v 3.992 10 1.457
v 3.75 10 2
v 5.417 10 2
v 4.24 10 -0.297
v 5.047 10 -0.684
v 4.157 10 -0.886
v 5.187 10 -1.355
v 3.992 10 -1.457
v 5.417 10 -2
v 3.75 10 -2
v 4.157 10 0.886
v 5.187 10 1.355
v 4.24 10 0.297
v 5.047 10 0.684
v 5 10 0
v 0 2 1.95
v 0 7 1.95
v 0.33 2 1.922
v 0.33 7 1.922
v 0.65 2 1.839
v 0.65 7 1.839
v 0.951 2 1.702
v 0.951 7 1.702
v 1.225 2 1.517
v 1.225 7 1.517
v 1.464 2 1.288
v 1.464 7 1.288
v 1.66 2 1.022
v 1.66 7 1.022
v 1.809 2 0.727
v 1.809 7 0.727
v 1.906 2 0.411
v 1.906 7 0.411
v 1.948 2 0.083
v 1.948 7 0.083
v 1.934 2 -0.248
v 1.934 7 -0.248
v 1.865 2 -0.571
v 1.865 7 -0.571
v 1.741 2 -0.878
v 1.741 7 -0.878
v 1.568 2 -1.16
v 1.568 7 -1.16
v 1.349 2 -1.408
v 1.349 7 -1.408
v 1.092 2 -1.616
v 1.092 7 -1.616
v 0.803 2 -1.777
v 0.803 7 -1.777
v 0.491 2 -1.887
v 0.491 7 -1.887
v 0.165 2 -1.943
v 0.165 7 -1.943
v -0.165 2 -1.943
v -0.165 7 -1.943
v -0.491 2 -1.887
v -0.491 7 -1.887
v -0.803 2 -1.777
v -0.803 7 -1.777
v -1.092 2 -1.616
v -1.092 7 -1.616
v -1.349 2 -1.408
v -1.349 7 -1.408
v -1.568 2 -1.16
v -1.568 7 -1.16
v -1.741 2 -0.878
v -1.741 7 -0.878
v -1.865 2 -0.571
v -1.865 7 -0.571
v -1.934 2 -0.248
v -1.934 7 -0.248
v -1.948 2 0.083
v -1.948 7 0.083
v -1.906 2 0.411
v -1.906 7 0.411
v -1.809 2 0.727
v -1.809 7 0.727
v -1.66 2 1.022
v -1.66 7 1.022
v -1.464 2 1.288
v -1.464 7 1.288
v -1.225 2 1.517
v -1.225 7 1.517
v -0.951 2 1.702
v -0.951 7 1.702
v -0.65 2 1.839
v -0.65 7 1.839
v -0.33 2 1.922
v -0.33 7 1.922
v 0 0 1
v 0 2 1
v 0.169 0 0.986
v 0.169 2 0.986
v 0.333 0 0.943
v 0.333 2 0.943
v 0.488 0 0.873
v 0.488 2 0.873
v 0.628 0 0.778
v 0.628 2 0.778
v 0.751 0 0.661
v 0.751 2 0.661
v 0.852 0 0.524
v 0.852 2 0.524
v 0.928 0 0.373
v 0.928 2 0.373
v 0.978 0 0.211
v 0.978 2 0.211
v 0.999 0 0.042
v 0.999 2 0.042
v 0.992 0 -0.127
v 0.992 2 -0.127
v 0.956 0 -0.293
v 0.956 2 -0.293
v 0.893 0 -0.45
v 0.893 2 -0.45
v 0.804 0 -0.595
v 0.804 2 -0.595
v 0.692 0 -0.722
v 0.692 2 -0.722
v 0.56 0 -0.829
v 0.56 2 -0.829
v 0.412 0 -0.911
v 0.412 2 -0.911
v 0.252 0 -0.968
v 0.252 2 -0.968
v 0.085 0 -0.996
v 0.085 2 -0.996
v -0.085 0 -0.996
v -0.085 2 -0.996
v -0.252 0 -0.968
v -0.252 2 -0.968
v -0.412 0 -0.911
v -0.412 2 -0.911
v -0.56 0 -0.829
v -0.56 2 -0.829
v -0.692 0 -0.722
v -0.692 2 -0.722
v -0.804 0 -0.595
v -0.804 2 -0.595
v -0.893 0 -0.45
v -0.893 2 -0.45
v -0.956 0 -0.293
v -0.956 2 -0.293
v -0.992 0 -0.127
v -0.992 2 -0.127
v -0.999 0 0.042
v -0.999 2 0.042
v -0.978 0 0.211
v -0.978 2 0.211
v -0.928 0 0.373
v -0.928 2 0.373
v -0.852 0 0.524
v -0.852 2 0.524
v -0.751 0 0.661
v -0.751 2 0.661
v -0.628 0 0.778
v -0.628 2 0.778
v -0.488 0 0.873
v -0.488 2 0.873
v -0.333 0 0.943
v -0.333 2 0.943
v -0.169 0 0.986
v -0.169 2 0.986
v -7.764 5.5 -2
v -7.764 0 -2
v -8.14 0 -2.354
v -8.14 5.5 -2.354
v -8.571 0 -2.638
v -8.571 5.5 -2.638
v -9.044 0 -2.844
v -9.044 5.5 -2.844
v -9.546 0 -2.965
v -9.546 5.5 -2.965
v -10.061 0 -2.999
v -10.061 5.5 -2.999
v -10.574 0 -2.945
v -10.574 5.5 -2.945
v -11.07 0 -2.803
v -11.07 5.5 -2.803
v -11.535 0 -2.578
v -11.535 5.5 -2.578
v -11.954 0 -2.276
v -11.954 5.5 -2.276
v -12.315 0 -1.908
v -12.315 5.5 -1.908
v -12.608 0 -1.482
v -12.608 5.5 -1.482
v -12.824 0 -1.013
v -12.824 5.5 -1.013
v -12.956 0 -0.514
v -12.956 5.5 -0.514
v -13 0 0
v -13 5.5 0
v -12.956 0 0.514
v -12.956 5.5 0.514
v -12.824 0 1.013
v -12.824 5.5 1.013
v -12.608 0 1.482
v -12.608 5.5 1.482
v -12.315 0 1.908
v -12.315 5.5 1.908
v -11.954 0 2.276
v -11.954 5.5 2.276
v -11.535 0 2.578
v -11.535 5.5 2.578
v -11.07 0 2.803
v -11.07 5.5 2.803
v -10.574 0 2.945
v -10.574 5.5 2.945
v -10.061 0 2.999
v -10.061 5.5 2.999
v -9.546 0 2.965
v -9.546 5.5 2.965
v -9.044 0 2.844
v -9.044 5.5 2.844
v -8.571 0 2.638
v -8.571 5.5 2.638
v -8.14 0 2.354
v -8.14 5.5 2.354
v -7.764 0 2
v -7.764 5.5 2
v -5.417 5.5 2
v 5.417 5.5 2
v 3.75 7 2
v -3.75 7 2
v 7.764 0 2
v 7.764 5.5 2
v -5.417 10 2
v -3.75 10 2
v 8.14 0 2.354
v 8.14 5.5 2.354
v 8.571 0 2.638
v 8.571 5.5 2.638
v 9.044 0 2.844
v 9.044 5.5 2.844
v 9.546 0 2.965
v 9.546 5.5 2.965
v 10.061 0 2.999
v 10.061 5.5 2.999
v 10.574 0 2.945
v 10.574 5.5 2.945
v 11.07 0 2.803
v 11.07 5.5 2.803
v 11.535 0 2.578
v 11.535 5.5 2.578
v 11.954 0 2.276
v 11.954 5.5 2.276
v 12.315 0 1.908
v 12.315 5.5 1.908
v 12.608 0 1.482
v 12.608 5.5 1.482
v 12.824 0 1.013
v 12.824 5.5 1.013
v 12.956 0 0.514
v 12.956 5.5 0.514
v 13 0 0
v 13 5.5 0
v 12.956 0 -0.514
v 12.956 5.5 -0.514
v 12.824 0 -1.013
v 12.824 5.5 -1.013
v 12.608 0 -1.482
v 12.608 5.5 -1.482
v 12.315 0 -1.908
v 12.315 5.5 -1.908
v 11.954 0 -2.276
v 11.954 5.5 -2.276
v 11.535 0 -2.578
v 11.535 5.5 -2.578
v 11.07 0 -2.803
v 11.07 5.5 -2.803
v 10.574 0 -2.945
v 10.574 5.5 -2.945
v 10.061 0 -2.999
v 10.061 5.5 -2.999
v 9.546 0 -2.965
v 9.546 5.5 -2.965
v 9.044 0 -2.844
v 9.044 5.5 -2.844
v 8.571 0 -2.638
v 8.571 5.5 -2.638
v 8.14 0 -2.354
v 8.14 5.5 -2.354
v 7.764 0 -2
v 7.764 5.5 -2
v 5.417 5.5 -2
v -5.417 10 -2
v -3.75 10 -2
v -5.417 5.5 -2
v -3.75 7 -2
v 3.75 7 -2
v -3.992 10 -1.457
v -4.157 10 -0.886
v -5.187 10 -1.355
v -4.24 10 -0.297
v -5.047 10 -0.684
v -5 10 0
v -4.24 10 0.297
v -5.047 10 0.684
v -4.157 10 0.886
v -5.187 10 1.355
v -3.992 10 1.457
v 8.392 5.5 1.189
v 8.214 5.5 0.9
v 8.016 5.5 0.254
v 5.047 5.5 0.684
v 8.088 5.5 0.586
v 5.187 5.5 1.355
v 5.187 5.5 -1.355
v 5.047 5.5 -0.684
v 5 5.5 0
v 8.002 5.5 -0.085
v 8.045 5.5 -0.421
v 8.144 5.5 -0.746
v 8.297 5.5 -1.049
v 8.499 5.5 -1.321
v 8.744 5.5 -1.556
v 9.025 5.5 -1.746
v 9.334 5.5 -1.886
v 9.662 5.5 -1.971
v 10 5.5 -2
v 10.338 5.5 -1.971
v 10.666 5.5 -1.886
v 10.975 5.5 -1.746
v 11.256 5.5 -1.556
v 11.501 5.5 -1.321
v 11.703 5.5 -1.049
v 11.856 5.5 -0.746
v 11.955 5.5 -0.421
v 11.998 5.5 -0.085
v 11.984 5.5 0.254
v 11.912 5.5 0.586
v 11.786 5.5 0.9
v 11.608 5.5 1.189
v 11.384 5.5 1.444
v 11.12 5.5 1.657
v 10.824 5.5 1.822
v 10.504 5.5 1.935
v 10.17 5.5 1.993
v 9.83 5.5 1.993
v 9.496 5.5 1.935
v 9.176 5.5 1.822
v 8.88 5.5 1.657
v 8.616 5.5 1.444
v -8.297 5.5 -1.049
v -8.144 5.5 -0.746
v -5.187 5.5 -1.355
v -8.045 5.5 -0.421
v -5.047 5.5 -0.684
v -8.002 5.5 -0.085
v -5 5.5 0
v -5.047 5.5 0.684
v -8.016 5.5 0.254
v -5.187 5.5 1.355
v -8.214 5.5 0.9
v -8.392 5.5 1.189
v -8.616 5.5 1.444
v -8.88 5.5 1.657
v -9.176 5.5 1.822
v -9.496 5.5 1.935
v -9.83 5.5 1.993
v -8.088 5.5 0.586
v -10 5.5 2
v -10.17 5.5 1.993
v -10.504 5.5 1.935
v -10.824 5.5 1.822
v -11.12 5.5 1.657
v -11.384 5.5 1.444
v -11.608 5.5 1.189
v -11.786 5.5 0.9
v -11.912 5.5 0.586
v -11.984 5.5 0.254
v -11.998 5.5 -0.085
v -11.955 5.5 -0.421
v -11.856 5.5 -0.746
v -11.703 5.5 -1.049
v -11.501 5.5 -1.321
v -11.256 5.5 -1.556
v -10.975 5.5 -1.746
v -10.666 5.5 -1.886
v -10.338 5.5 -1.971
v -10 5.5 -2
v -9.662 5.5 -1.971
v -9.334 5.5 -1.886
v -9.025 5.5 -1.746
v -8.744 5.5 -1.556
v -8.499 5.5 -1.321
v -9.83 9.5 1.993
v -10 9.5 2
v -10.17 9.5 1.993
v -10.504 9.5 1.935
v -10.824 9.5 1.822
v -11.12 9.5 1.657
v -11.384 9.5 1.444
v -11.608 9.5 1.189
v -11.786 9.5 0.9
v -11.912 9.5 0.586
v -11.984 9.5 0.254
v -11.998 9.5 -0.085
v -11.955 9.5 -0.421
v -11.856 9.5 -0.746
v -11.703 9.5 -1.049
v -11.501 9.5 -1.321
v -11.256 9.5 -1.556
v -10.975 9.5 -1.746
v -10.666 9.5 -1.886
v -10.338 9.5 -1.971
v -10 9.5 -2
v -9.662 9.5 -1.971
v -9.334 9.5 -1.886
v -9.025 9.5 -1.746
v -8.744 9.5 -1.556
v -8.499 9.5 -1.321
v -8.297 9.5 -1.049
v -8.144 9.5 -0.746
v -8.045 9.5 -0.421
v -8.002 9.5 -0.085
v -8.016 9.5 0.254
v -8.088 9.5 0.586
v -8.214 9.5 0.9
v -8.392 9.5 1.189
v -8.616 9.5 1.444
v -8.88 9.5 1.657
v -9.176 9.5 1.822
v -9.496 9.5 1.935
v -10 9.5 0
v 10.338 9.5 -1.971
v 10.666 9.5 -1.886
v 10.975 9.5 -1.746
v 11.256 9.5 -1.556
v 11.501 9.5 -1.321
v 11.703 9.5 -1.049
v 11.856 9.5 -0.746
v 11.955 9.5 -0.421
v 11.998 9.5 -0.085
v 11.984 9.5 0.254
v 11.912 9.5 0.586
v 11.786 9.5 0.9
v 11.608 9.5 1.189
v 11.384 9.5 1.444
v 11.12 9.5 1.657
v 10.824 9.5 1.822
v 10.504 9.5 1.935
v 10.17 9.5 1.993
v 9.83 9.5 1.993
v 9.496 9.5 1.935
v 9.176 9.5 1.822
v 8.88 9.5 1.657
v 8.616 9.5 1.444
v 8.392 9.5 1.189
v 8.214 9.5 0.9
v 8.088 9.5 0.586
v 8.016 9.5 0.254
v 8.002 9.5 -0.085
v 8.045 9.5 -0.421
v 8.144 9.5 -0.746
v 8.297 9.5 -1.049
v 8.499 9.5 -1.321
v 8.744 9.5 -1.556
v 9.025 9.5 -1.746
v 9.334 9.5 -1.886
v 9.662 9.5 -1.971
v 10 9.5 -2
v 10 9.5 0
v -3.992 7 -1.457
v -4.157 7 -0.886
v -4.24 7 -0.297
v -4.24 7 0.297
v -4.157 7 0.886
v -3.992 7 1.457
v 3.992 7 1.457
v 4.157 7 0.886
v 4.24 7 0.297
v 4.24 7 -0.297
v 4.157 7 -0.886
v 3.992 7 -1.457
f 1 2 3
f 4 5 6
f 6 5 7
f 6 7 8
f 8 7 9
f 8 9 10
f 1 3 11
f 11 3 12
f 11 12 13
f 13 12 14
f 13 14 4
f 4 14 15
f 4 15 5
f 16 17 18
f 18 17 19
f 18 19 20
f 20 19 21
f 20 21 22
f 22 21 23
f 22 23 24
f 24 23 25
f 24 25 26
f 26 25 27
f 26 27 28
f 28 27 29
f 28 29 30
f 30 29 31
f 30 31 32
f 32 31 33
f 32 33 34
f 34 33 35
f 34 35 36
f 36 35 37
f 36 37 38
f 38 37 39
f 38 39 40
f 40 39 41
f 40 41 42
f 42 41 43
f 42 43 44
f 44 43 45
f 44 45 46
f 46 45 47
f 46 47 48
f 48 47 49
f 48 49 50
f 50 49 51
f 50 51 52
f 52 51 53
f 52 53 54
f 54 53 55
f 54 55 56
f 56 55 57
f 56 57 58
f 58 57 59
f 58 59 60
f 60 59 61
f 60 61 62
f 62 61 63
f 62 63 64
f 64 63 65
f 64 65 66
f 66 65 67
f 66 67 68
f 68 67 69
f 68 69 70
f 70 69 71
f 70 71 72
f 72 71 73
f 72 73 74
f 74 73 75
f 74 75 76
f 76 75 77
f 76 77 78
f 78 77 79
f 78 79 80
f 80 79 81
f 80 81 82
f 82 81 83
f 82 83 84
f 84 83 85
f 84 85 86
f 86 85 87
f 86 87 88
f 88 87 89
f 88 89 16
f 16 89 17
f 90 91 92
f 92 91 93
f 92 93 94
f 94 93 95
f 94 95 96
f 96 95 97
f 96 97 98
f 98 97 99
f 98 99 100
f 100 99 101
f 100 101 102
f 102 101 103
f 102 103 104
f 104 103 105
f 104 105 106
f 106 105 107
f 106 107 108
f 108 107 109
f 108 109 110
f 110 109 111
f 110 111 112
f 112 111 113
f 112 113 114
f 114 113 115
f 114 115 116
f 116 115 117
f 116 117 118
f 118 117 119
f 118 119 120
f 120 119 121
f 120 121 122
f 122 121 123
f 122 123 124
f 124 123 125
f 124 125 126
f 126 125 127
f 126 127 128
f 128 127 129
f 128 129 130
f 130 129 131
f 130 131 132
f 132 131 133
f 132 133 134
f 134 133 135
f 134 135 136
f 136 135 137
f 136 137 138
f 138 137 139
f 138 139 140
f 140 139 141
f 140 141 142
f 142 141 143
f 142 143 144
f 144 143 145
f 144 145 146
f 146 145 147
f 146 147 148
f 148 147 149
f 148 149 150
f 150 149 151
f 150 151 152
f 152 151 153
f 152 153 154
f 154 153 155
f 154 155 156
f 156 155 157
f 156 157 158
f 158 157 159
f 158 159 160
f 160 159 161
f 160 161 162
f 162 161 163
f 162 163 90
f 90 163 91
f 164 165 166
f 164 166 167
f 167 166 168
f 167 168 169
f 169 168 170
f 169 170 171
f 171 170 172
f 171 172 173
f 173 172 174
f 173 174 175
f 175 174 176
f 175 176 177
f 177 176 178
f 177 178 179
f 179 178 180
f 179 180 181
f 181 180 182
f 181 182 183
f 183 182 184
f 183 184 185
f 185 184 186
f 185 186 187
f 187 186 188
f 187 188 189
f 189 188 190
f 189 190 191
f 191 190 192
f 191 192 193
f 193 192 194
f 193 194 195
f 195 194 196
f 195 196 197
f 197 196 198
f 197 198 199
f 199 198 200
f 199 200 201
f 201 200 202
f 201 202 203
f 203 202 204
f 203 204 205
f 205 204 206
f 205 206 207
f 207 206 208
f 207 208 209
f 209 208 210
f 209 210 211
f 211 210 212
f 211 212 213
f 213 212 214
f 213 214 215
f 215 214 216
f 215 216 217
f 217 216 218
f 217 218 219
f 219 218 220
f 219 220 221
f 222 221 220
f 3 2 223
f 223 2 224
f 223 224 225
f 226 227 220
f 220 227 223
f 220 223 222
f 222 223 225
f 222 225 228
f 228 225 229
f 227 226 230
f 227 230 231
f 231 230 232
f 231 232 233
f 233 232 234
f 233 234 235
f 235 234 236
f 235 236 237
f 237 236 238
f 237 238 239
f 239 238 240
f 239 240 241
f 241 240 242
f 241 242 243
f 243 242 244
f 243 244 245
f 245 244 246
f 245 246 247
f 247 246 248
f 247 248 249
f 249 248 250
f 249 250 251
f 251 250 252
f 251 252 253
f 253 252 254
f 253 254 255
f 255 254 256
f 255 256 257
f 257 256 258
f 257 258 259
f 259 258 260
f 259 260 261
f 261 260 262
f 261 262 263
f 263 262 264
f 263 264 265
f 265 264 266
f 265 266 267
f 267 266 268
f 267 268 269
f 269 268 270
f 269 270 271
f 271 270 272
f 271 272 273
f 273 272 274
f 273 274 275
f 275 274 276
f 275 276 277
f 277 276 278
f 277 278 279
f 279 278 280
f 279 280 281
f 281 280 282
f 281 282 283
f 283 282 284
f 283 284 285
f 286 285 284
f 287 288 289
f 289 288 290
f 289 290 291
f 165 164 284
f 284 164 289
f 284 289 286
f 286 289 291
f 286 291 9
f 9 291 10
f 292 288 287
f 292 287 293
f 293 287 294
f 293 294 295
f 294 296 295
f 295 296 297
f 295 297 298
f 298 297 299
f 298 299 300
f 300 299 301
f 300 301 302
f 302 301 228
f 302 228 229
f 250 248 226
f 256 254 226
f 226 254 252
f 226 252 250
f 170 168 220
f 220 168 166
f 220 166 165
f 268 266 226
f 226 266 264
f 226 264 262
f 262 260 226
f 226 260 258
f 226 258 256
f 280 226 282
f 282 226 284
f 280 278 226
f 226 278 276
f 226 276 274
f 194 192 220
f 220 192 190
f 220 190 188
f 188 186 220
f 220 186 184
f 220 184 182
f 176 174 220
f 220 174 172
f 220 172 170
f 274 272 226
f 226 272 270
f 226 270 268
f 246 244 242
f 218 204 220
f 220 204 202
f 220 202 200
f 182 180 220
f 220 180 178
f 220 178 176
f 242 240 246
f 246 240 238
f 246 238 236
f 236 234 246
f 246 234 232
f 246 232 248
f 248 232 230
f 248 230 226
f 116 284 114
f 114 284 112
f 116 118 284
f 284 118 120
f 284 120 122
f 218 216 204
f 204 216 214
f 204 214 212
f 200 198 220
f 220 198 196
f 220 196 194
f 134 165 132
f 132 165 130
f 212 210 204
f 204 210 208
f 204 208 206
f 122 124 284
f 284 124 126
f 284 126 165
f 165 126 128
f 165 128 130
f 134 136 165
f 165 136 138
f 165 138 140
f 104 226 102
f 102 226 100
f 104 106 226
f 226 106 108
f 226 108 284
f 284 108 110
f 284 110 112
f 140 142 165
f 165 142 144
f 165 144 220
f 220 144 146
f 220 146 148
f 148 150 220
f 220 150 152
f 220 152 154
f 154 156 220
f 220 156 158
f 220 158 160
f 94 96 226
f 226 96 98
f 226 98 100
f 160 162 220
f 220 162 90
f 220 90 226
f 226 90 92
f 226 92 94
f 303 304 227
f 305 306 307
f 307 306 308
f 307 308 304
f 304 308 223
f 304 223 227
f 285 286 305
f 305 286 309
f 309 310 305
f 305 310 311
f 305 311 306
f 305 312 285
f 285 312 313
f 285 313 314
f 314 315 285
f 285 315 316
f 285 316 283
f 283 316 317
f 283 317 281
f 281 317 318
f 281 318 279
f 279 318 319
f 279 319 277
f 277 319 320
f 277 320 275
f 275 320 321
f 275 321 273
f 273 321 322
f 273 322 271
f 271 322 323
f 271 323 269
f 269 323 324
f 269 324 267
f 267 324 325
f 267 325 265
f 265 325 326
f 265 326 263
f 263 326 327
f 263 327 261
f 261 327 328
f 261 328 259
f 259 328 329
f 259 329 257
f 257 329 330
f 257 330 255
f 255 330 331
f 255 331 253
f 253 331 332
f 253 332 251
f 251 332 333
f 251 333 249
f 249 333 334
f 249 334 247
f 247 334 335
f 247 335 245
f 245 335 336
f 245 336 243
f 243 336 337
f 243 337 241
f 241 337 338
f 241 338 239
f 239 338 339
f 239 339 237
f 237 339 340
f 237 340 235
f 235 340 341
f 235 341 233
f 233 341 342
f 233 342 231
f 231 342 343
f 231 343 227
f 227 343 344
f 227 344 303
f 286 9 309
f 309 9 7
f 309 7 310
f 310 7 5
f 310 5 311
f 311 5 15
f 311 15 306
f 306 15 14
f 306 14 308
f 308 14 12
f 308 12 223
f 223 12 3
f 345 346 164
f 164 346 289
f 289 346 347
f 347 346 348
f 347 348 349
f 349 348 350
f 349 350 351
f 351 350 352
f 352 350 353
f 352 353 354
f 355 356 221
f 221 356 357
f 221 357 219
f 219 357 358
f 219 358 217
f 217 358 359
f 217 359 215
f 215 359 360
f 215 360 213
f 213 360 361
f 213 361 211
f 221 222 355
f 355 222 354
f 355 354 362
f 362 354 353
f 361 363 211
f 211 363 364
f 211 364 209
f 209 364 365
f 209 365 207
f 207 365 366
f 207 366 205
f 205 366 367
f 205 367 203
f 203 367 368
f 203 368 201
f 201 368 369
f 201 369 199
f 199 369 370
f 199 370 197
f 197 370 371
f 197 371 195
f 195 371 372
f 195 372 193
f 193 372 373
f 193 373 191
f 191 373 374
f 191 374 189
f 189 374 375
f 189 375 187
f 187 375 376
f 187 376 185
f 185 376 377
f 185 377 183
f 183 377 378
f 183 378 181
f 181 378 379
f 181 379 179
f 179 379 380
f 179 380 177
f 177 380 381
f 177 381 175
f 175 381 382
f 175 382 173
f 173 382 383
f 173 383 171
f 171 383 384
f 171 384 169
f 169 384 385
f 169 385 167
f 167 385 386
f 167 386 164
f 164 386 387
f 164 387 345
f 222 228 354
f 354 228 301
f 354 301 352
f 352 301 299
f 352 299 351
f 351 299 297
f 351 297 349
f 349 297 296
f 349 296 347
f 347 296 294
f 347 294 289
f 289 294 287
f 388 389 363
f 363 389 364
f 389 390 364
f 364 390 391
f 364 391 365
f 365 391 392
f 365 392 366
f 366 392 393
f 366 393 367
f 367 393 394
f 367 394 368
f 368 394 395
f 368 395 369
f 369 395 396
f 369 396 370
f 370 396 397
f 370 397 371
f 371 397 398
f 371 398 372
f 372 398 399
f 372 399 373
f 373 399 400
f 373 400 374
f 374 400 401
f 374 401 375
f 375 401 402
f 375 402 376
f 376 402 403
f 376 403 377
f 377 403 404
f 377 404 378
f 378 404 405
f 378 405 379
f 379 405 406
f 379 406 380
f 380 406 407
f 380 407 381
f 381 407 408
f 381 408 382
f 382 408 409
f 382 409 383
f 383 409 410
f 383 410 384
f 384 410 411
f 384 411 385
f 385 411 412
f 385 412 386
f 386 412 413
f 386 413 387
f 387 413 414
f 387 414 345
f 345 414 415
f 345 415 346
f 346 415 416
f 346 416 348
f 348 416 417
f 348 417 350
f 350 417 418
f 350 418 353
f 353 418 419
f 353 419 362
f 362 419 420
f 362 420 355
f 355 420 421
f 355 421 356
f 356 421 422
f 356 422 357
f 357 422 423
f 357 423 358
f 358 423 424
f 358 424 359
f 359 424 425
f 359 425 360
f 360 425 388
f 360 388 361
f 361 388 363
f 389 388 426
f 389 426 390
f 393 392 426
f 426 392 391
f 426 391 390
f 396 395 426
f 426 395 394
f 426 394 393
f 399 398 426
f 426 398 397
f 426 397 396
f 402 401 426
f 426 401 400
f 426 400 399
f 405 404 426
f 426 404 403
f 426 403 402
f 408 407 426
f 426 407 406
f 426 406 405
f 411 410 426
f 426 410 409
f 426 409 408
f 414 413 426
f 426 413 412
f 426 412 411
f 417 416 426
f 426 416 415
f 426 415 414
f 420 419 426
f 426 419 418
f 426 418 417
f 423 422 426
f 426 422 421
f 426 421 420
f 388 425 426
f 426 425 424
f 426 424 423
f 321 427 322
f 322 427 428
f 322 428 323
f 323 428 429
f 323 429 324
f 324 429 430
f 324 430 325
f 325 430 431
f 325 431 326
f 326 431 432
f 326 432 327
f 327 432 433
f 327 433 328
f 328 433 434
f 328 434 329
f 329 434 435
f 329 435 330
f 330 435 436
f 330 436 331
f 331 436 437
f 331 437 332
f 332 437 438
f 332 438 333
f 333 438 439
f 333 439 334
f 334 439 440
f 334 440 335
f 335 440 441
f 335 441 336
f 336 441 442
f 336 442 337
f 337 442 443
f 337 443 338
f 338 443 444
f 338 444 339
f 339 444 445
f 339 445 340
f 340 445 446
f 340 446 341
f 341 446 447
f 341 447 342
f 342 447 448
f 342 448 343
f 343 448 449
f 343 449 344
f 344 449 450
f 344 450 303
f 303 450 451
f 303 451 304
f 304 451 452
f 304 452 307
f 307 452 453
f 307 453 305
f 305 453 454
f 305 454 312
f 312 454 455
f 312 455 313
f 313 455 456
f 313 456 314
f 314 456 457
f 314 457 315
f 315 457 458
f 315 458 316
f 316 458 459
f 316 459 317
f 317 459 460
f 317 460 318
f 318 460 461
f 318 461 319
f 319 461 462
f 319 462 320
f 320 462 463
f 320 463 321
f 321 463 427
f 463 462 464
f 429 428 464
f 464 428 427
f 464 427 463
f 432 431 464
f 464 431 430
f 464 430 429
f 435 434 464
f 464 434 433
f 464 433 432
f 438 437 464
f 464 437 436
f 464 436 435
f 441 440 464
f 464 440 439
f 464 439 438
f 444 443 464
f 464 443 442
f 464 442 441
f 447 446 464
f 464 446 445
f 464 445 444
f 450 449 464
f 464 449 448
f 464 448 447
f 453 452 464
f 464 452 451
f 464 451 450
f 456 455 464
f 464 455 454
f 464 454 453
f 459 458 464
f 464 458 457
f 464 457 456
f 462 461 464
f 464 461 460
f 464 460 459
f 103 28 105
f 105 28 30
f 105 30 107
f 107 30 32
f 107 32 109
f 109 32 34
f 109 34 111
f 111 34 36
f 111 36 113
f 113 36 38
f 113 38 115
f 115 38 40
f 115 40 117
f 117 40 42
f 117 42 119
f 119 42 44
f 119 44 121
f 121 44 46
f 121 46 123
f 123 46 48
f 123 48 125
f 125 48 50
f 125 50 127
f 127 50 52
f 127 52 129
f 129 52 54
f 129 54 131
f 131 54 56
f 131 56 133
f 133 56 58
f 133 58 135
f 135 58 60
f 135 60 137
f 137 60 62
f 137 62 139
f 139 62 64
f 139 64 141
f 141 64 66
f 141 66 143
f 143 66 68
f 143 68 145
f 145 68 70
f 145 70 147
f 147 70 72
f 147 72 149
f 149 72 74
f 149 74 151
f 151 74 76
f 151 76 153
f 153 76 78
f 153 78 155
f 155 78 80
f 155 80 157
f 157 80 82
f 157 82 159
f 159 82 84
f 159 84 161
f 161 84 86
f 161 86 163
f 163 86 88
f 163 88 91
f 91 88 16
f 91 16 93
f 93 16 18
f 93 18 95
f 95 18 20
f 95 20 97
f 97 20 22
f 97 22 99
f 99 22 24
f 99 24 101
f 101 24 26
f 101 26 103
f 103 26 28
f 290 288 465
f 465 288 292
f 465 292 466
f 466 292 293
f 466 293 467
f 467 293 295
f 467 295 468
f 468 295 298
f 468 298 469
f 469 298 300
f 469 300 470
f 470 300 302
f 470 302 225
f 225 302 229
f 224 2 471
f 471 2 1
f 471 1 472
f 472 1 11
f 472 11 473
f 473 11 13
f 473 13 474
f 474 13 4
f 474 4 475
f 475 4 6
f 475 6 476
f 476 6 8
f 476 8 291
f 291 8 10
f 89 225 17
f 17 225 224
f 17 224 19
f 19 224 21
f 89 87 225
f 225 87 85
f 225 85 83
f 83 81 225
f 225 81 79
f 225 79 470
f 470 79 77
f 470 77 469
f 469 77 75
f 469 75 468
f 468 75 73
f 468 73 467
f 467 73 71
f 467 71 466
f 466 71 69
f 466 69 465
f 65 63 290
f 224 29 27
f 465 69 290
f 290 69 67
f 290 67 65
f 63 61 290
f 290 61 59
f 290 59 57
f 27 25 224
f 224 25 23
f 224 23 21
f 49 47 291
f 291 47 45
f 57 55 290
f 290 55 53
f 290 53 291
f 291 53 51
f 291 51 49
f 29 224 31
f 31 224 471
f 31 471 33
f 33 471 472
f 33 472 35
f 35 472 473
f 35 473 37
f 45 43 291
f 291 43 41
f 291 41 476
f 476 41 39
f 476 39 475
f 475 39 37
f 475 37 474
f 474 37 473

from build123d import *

# Parameters (mm, degrees)
EXTRUDE_1_DEPTH     = 10
SKETCH_2_R          = 5
CUT_EXTRUDE_1_DEPTH = 4.5
SKETCH_3_R          = 2
EXTRUDE_2_DEPTH     = 4
SKETCH_4_R          = 1
CUT_EXTRUDE_2_DEPTH = 11
SKETCH_5_R          = 1.95
CUT_EXTRUDE_3_DEPTH = 8
SKETCH_6_R          = 4.25
CUT_EXTRUDE_4_DEPTH = 3


with BuildPart() as part:
    # 草图1 → 凸台-拉伸1 (new body)
    with BuildSketch(Plane(origin=(0, 0, 0), x_dir=(1, 0, 0), z_dir=(0, 1, 0))):
        with BuildLine():
            Line((7.763932023, -2), (-7.763932023, -2))
            ThreePointArc((-7.763932023, -2), (-13, 0), (-7.763932023, 2))
            Line((-7.763932023, 2), (7.763932023, 2))
            ThreePointArc((7.763932023, 2), (13, 0), (7.763932023, -2))
        make_face()
    extrude(amount=EXTRUDE_1_DEPTH)

    # 草图2 → 切除-拉伸1 (cut)
    with BuildSketch(Plane(origin=(0, 10, 0), x_dir=(1, 0, 0), z_dir=(0, 1, 0))):
        with Locations((-10, 0)):
            Circle(SKETCH_2_R)
        with Locations((10, 0)):
            Circle(SKETCH_2_R)
    extrude(amount=-CUT_EXTRUDE_1_DEPTH, mode=Mode.SUBTRACT)

    # 草图3 → 凸台-拉伸2 (add)
    with BuildSketch(Plane(origin=(0, 5.5, 0), x_dir=(1, 0, 0), z_dir=(0, 1, 0))):
        with Locations((-10, 0)):
            Circle(SKETCH_3_R)
        with Locations((10, 0)):
            Circle(SKETCH_3_R)
    extrude(amount=EXTRUDE_2_DEPTH)

    # 草图4 → 切除-拉伸2 (cut, through all)
    with BuildSketch(Plane(origin=(0, 10, 0), x_dir=(1, 0, 0), z_dir=(0, 1, 0))):
        Circle(SKETCH_4_R)
    extrude(amount=-CUT_EXTRUDE_2_DEPTH, mode=Mode.SUBTRACT)

    # 草图5 → 切除-拉伸3 (cut)
    with BuildSketch(Plane(origin=(0, 10, 0), x_dir=(1, 0, 0), z_dir=(0, 1, 0))):
        Circle(SKETCH_5_R)
    extrude(amount=-CUT_EXTRUDE_3_DEPTH, mode=Mode.SUBTRACT)

    # 草图6 → 切除-拉伸4 (cut)
    with BuildSketch(Plane(origin=(0, 10, 0), x_dir=(1, 0, 0), z_dir=(0, 1, 0))):
        Circle(SKETCH_6_R)
    extrude(amount=-CUT_EXTRUDE_4_DEPTH, mode=Mode.SUBTRACT)


solid = part.part
